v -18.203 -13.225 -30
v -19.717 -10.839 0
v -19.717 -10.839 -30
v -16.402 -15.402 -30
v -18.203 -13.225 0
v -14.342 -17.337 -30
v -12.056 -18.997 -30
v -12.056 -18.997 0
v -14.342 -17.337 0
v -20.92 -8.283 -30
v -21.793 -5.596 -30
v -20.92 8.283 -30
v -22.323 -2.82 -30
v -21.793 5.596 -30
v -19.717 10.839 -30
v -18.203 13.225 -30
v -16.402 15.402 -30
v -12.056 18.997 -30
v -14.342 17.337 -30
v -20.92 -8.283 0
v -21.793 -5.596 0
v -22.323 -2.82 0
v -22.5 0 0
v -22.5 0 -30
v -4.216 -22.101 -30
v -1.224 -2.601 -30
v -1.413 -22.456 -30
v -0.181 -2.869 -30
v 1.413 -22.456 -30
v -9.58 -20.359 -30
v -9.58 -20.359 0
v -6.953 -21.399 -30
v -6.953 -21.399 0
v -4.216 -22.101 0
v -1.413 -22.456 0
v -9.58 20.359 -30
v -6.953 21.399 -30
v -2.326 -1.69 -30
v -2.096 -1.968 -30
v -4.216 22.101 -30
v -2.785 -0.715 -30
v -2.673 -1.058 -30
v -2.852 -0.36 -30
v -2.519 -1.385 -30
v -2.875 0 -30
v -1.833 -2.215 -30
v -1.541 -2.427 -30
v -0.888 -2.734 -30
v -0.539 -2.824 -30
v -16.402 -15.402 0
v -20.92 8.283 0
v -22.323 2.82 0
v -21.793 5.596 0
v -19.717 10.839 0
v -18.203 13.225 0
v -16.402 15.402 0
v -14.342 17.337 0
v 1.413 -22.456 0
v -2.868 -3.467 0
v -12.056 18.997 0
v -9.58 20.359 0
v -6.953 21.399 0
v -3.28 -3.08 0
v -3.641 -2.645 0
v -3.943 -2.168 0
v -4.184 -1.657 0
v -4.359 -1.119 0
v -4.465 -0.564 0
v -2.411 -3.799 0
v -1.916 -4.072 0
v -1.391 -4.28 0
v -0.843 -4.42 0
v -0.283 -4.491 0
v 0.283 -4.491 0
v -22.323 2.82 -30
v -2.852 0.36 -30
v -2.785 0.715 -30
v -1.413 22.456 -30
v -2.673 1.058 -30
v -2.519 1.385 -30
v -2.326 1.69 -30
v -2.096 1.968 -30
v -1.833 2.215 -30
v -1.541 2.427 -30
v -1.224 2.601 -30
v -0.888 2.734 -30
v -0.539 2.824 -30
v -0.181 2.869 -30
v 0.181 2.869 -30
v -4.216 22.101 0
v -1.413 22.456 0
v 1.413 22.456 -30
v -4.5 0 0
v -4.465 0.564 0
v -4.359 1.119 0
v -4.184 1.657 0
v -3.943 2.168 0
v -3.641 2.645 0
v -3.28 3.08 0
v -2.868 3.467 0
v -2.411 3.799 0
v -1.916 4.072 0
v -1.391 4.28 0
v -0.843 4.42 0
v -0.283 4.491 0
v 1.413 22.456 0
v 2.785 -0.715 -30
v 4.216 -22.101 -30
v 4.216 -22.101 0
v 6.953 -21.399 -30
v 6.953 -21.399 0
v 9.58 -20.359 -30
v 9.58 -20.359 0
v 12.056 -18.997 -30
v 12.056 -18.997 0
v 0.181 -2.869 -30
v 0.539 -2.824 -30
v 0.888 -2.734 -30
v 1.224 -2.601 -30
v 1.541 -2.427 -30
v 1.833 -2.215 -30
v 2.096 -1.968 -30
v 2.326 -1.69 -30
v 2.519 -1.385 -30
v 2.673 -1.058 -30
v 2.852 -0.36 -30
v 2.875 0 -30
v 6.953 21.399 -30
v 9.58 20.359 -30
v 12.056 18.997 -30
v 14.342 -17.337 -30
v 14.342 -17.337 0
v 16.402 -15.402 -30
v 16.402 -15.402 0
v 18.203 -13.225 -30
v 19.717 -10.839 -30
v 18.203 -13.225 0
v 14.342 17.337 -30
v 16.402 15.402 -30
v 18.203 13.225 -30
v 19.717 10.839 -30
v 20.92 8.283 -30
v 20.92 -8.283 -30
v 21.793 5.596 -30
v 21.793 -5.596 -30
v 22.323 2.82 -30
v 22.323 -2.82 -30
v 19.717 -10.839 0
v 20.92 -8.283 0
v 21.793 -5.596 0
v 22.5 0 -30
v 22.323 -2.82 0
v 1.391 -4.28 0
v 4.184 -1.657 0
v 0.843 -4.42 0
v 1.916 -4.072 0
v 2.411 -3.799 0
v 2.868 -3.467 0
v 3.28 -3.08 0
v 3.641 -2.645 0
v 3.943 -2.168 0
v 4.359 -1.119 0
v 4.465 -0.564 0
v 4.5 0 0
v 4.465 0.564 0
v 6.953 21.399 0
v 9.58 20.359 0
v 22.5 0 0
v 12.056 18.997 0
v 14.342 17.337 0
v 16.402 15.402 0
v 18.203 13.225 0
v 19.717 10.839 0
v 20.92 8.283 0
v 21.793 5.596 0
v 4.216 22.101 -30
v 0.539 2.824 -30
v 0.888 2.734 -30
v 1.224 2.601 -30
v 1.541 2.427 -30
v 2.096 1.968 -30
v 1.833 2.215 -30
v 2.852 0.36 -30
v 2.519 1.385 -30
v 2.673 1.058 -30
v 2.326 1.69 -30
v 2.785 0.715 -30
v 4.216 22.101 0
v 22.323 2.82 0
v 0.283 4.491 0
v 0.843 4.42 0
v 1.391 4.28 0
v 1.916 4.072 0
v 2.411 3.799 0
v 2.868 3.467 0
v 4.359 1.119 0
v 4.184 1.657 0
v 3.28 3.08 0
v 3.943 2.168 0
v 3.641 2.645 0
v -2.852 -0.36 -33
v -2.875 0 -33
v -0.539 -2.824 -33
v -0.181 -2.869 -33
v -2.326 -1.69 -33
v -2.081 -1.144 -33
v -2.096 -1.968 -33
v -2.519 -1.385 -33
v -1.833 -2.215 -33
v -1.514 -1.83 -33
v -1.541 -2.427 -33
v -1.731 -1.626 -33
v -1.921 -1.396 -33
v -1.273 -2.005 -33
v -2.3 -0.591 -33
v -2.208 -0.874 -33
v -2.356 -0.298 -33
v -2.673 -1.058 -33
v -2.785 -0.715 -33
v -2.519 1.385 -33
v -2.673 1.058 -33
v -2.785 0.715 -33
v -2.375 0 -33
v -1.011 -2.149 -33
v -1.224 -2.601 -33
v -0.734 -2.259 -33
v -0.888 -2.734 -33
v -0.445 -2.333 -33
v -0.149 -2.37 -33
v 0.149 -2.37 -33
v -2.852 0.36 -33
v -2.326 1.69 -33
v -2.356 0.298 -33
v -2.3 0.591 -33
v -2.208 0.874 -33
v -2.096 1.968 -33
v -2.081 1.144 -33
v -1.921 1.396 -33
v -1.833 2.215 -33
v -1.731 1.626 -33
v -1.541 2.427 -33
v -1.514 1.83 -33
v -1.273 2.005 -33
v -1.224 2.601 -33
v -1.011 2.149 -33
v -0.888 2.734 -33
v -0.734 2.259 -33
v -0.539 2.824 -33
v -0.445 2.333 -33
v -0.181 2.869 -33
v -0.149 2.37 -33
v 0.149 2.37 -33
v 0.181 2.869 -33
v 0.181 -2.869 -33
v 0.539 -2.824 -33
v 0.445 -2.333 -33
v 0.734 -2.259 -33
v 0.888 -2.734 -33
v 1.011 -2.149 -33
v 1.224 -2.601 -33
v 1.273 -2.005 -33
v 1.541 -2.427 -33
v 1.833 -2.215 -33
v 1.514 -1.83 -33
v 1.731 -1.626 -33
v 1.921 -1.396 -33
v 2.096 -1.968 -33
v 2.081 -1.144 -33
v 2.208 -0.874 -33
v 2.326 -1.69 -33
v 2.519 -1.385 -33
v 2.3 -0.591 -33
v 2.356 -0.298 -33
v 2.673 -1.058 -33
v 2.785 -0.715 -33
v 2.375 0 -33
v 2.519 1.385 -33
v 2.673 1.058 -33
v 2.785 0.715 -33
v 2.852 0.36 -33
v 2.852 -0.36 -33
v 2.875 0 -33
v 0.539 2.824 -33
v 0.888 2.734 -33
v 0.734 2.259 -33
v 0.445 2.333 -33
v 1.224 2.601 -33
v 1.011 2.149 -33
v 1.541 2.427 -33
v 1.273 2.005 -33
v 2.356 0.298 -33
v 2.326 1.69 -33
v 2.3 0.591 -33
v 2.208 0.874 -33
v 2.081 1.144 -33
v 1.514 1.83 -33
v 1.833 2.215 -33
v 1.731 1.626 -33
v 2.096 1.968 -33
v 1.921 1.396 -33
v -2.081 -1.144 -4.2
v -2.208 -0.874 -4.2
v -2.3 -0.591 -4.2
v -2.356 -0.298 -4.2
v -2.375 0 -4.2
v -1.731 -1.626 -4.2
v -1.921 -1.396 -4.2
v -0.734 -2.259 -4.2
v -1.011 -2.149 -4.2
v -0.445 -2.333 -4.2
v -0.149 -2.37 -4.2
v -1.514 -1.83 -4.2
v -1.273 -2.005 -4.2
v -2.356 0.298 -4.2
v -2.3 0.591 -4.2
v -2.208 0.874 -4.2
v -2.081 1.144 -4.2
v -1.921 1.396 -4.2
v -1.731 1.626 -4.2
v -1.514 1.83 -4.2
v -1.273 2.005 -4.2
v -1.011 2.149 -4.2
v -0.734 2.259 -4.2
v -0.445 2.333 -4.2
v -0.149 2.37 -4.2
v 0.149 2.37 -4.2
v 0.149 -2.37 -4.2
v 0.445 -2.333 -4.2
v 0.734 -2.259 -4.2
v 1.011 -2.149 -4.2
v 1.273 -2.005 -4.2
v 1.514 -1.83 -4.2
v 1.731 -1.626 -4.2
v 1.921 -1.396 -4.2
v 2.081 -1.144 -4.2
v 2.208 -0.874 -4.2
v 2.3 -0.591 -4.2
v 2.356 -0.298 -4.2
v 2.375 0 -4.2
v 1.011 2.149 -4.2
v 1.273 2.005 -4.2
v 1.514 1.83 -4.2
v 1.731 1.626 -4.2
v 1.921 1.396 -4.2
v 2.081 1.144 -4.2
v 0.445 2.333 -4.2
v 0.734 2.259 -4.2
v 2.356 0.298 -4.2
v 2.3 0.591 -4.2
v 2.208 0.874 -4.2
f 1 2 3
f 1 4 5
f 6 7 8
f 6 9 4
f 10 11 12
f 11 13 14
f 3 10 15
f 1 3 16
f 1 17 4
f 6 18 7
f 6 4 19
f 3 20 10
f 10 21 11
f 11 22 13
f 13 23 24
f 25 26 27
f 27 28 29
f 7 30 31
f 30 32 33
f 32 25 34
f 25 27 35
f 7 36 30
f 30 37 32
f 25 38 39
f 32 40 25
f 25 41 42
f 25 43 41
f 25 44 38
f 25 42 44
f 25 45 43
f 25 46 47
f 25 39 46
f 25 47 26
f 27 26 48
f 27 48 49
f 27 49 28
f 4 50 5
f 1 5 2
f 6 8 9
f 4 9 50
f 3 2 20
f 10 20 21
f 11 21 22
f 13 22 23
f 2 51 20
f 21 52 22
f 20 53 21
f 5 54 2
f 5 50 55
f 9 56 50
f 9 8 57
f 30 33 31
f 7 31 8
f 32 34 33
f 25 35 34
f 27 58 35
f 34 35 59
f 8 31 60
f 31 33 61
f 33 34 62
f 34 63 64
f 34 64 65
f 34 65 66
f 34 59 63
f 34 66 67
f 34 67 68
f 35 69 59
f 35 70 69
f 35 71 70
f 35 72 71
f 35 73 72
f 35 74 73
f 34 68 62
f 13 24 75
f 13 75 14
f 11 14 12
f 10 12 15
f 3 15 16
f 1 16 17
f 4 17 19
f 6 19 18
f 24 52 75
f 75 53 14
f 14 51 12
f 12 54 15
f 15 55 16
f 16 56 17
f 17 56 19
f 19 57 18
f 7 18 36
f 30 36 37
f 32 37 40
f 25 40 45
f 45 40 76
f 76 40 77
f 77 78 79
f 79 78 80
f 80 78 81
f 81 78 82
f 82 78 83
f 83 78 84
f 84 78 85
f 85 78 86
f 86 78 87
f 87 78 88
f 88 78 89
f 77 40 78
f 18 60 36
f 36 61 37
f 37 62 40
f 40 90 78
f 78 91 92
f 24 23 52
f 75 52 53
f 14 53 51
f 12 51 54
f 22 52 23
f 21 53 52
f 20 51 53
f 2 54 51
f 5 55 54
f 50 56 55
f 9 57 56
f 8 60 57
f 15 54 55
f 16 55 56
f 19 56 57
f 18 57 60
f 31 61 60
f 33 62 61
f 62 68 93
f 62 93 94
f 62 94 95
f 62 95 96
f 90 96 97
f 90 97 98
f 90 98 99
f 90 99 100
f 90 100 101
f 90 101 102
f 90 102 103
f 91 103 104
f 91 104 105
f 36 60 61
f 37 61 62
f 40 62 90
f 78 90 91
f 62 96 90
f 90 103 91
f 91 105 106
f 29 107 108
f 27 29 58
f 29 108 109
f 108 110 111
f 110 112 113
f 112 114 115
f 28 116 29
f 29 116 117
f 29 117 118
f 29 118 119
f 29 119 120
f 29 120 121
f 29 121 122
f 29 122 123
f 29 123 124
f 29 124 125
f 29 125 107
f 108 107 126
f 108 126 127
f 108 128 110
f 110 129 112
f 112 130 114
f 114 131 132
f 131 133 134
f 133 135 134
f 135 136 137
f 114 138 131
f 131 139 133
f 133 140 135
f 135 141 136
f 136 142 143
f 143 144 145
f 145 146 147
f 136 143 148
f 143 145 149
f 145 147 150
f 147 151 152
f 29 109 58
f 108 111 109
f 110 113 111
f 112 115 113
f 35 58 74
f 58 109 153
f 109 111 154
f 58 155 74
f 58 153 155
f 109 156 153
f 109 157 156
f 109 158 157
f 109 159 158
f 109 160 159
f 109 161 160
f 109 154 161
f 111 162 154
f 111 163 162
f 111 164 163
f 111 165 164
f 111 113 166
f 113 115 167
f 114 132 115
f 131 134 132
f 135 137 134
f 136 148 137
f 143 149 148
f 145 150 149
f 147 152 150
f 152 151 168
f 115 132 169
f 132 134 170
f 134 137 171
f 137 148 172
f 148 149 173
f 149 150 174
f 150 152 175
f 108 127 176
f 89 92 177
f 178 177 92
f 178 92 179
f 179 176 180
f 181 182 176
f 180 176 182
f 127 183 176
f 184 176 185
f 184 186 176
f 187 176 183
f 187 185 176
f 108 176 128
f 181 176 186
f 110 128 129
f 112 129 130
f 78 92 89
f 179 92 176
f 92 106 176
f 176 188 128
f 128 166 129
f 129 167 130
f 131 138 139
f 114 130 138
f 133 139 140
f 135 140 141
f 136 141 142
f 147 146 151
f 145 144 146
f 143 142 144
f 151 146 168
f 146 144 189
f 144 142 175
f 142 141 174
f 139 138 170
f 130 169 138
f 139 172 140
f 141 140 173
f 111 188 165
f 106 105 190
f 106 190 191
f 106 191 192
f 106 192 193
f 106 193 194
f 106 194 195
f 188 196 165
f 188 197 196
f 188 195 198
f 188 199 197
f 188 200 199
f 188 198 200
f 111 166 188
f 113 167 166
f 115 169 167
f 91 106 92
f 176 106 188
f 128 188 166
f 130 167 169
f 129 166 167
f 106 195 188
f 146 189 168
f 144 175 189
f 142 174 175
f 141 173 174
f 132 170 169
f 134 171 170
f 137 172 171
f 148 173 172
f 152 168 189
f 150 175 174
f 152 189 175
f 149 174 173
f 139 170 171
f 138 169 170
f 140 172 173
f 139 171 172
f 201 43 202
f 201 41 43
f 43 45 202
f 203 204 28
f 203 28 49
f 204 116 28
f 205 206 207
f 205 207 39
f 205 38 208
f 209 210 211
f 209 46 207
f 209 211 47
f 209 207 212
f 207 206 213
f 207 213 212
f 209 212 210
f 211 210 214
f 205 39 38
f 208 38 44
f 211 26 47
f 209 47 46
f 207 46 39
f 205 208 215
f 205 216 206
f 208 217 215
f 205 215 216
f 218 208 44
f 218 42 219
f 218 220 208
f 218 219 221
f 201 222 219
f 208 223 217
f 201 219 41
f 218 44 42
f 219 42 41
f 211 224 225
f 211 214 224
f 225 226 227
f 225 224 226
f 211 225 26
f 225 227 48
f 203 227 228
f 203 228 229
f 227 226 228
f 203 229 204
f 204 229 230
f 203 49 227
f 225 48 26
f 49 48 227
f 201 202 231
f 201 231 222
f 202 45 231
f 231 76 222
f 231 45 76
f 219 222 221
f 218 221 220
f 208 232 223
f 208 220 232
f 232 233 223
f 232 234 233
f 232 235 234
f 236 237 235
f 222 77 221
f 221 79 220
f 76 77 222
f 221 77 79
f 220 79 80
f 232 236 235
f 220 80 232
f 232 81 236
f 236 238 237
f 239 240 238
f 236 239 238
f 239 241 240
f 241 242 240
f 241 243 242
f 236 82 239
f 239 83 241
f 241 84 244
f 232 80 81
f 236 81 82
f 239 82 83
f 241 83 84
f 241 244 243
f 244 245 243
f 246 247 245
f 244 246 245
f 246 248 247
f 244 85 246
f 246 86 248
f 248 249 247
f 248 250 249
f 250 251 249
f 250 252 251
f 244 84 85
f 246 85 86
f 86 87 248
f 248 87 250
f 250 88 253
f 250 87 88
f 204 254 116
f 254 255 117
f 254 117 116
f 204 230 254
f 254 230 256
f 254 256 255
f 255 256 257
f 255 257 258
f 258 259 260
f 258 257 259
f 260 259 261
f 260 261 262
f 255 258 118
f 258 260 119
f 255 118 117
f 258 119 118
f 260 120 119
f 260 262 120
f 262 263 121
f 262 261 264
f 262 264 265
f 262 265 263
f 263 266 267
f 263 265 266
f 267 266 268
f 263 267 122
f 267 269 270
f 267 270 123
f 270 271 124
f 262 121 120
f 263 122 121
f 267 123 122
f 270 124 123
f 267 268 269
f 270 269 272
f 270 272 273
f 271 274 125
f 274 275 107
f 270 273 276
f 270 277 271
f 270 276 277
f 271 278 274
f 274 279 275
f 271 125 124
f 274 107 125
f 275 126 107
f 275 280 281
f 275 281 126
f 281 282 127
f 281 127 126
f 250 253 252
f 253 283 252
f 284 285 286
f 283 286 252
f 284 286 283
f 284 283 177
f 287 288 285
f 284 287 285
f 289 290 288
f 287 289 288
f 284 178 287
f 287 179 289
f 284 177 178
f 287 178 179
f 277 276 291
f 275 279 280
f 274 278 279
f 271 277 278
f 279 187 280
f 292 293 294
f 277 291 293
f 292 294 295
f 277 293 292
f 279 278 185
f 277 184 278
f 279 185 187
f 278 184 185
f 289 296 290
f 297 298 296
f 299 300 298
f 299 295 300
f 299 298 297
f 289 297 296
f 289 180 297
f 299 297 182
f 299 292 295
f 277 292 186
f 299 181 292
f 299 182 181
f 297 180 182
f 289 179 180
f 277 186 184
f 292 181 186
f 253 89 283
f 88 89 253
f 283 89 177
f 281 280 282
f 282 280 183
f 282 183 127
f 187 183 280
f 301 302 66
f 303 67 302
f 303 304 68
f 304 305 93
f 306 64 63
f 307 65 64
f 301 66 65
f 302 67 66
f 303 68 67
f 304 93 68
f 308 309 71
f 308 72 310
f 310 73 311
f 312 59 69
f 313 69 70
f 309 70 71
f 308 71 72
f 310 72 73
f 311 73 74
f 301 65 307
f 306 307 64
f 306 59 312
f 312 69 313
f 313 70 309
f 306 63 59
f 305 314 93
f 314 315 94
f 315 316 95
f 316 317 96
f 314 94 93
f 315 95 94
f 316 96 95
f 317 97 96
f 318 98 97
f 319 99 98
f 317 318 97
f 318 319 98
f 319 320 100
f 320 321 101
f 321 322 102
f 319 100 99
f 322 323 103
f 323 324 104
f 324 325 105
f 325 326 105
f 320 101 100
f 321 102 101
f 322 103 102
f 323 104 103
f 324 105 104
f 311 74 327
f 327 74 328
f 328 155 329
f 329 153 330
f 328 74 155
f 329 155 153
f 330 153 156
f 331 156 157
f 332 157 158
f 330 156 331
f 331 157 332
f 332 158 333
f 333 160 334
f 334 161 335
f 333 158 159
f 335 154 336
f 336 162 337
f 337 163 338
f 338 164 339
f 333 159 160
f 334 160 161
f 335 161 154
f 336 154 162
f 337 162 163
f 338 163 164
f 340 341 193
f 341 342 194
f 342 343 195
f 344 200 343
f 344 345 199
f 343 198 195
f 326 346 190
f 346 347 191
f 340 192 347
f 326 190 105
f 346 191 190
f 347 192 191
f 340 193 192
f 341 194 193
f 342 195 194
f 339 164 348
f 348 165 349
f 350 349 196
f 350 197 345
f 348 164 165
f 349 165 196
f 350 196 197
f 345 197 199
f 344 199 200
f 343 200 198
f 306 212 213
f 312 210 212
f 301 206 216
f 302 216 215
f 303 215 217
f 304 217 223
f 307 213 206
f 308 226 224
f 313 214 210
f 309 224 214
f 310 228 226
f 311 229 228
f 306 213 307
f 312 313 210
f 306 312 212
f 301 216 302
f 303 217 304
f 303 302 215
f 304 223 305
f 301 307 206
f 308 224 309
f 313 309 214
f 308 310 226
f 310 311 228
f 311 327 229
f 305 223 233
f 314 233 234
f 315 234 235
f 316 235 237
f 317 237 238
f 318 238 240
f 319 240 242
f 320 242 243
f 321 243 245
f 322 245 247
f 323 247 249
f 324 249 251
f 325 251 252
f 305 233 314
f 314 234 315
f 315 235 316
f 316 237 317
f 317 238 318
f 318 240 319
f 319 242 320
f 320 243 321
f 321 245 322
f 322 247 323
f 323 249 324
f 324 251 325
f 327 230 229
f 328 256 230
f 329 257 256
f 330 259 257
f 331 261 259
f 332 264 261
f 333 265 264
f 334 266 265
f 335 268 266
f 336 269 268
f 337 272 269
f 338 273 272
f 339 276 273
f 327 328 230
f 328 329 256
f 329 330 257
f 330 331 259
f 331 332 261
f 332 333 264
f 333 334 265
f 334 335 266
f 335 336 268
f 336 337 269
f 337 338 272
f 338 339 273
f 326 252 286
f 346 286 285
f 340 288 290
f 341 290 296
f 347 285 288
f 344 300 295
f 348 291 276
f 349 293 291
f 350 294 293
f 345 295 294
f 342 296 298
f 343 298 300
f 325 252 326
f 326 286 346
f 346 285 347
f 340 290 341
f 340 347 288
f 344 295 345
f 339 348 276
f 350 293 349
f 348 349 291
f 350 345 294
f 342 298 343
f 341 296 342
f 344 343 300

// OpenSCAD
$fn = 50;


difference() {
	union() {
		translate(v = [0, 0, -30.0000000000]) {
			cylinder(h = 30, r = 22.5000000000);
		}
		#translate(v = [0, 0, -33.0000000000]) {
			cylinder(h = 33, r = 2.8750000000);
		}
	}
	union() {
		translate(v = [0, 0, 0]) {
			rotate(a = [0, 0, 0]) {
				difference() {
					union() {
						translate(v = [0, 0, -33.0000000000]) {
							cylinder(h = 33, r = 2.2500000000);
						}
						translate(v = [0, 0, -4.2000000000]) {
							cylinder(h = 4.2000000000, r1 = 2.3750000000, r2 = 4.5000000000);
						}
						translate(v = [0, 0, -33.0000000000]) {
							cylinder(h = 33, r = 2.3750000000);
						}
						translate(v = [0, 0, -33.0000000000]) {
							cylinder(h = 33, r = 2.2500000000);
						}
					}
					union();
				}
			}
		}
	}
}
